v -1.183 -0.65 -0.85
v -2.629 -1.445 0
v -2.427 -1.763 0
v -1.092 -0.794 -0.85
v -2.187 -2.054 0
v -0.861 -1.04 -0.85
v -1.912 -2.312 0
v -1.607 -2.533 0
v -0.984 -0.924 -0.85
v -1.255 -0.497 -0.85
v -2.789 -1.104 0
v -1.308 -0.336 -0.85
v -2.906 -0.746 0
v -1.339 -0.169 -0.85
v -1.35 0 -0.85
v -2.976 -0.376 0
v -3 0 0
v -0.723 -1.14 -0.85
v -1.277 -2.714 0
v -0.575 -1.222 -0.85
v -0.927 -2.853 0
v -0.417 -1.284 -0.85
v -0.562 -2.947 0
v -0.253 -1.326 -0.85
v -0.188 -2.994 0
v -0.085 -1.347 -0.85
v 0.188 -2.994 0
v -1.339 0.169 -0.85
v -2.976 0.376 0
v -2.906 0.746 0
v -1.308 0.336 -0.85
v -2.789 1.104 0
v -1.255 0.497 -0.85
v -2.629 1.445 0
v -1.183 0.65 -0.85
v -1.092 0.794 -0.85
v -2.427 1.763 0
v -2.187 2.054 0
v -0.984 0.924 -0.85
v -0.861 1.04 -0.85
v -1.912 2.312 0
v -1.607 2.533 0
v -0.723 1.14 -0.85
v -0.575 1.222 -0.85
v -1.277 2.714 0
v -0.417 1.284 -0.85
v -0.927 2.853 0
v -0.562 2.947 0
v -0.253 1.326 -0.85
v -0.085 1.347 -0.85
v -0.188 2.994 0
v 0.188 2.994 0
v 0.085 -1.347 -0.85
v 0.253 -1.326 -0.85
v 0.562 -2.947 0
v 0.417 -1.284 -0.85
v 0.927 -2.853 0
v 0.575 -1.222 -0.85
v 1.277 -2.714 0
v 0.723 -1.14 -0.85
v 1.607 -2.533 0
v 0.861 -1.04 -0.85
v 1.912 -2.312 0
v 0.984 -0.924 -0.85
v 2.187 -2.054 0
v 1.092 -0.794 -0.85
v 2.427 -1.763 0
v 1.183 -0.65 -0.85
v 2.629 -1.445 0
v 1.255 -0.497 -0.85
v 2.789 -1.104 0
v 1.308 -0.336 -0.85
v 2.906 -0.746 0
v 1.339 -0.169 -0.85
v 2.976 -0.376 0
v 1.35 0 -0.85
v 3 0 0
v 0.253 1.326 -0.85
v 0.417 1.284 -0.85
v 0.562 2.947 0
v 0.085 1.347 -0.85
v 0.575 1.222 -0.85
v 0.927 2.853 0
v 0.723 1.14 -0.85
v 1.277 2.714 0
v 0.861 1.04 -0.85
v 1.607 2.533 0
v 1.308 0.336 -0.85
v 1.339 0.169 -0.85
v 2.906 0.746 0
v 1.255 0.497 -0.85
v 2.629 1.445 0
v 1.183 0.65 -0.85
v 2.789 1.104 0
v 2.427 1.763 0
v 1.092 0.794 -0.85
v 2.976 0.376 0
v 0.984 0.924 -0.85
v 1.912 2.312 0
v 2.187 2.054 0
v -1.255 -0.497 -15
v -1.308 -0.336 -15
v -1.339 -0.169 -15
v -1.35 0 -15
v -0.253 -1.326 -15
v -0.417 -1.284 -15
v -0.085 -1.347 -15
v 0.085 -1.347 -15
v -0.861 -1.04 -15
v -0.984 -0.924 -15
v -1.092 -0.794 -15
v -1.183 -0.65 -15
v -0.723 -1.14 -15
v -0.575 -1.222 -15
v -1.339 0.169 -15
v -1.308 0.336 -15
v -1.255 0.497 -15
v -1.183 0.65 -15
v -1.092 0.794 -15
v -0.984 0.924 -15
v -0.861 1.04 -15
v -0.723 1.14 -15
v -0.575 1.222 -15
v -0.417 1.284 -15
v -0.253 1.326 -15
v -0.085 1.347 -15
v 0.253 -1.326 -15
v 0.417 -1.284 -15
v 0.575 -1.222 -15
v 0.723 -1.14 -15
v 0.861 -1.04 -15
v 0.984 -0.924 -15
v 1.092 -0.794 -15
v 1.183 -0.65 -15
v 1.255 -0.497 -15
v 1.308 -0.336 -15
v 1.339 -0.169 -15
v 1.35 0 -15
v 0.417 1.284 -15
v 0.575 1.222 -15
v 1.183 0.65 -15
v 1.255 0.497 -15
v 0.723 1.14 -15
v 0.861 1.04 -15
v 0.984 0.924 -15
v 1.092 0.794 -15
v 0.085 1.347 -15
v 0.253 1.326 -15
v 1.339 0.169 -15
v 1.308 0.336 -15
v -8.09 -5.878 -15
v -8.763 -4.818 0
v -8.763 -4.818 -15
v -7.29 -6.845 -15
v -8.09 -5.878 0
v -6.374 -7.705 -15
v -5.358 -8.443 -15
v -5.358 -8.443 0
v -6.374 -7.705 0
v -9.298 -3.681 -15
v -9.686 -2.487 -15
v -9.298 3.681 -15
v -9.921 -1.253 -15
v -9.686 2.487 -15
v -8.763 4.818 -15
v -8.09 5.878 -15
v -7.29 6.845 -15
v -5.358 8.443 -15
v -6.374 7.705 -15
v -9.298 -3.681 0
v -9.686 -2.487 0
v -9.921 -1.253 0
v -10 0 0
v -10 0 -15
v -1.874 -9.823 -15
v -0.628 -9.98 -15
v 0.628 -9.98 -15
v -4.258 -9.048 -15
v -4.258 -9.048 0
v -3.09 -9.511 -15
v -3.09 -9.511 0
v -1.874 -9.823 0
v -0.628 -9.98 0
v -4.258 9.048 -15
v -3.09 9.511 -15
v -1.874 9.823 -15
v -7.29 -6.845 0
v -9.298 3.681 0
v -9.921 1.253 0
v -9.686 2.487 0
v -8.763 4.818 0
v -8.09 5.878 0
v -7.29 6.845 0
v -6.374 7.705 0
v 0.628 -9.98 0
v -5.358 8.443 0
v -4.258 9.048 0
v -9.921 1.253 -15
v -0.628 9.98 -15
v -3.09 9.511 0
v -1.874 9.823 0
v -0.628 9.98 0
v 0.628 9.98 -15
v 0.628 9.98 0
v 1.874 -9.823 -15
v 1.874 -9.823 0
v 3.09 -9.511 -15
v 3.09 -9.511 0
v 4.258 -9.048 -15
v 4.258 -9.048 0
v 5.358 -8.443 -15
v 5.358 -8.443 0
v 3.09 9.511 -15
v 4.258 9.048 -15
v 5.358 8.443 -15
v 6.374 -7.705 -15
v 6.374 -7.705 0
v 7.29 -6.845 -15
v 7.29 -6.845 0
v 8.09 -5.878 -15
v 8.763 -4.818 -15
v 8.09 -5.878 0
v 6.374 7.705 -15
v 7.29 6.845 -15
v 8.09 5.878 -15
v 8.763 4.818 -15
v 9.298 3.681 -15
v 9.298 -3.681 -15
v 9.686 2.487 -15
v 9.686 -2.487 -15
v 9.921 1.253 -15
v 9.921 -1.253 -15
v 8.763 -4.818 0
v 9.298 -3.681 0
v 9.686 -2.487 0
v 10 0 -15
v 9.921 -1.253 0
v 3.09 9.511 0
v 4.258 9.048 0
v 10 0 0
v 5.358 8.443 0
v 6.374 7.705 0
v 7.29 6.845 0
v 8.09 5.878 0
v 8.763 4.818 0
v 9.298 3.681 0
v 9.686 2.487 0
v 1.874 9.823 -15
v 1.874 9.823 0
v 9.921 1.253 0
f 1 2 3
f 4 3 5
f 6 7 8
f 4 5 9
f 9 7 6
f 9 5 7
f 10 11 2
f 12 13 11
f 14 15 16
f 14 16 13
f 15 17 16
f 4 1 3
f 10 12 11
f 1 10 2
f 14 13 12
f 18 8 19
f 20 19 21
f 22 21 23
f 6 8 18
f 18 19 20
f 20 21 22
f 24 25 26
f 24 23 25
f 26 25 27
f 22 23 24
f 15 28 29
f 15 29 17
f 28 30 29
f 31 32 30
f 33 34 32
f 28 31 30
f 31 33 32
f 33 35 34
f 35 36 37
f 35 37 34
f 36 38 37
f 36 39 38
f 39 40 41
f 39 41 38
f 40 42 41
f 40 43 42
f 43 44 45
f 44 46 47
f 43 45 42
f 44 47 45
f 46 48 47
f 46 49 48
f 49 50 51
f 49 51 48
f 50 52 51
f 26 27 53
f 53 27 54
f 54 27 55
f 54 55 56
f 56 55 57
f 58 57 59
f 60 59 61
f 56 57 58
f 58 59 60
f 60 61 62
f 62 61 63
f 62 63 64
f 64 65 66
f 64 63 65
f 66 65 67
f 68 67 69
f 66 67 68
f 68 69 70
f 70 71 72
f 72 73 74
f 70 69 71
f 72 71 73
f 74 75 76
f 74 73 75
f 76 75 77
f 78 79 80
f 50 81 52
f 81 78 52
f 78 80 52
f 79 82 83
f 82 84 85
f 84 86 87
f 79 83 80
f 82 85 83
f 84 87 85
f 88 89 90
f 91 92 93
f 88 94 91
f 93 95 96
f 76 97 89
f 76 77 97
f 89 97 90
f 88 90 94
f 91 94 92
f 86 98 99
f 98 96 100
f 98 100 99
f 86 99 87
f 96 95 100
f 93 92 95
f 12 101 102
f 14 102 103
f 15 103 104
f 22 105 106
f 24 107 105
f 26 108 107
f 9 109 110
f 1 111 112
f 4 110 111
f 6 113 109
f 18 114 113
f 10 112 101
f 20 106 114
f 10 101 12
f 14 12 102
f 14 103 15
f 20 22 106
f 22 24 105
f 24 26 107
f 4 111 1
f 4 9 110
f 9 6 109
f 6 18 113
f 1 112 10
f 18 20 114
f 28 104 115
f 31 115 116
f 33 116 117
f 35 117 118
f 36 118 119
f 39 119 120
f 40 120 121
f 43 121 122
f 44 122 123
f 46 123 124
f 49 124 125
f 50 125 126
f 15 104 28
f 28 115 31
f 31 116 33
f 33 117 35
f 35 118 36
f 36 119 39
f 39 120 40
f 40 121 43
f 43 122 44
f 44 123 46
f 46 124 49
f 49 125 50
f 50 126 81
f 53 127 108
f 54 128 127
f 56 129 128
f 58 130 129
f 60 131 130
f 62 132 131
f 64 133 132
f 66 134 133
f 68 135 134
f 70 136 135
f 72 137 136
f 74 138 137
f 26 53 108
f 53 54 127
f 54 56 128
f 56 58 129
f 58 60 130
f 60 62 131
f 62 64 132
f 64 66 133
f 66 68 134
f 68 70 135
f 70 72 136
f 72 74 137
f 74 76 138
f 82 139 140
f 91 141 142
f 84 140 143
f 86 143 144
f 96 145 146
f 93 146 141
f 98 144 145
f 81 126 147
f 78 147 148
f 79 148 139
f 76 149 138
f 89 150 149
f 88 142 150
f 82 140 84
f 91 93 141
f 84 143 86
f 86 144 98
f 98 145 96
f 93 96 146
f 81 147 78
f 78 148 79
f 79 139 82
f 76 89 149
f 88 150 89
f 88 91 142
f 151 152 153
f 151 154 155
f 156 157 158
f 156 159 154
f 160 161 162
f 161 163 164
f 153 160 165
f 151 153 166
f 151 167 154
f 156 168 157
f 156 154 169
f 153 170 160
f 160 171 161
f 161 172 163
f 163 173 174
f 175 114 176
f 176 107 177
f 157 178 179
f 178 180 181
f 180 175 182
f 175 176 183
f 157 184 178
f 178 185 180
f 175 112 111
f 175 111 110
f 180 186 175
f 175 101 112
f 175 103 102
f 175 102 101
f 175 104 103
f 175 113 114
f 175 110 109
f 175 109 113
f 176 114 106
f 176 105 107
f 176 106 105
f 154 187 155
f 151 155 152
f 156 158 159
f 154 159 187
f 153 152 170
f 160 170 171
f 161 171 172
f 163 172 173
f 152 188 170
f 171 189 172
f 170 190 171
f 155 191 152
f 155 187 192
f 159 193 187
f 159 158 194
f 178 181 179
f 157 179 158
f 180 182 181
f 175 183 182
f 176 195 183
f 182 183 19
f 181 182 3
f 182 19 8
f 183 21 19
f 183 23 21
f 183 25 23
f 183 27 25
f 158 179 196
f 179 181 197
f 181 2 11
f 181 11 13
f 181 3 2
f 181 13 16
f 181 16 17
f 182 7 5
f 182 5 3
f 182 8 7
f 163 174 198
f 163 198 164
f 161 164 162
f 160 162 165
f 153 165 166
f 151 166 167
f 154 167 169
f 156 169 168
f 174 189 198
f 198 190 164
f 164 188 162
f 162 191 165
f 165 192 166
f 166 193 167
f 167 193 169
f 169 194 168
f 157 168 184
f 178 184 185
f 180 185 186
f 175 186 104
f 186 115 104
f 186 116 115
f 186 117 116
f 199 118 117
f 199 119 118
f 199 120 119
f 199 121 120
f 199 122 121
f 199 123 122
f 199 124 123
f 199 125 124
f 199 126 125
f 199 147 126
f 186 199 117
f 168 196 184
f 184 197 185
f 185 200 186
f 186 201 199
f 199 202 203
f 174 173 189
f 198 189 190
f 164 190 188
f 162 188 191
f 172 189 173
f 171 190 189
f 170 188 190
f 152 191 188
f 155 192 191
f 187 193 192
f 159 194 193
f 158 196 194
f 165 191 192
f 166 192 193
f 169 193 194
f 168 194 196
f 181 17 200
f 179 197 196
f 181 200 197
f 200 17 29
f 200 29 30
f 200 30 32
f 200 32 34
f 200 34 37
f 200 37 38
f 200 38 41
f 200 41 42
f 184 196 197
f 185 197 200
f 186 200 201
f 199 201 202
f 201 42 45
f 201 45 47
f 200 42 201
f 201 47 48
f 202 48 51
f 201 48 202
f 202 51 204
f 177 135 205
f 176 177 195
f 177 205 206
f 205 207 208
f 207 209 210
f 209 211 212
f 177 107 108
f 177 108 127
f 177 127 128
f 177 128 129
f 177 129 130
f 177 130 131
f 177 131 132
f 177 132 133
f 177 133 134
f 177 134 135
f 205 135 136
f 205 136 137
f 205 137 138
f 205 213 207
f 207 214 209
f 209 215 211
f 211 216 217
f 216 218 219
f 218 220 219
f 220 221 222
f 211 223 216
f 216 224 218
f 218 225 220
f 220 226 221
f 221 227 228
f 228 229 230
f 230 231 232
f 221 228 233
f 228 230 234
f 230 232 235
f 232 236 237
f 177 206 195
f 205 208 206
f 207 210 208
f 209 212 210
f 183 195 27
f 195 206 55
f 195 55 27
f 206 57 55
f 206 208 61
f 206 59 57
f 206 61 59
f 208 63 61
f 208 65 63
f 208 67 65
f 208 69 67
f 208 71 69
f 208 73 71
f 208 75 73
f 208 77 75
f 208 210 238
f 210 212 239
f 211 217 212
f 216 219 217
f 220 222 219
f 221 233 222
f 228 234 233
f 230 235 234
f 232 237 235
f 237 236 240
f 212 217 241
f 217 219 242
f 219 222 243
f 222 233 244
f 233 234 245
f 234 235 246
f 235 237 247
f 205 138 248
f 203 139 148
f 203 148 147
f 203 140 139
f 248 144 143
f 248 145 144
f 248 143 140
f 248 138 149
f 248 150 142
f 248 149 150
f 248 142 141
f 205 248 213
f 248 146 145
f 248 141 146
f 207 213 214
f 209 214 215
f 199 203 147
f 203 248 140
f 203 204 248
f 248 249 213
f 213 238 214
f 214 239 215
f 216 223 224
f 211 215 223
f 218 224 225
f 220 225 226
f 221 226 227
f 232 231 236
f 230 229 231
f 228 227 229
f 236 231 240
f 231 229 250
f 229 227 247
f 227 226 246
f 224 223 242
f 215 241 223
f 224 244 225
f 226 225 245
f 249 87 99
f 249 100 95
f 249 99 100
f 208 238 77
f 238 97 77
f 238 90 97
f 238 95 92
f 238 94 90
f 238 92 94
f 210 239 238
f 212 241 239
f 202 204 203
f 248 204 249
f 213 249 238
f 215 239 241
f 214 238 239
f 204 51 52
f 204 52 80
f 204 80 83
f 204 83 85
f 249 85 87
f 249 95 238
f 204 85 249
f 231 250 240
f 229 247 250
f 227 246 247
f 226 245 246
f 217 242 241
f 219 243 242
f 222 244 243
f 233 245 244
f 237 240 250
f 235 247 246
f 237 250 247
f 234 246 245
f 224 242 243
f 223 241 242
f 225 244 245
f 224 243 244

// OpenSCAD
$fn = 50;


difference() {
	union() {
		translate(v = [0, 0, -15.0000000000]) {
			cylinder(h = 15, r = 10.0000000000);
		}
	}
	union() {
		translate(v = [0, 0, 0]) {
			rotate(a = [0, 0, 0]) {
				difference() {
					union() {
						translate(v = [0, 0, -18.0000000000]) {
							cylinder(h = 18, r = 1.0000000000);
						}
						translate(v = [0, 0, -0.8500000000]) {
							cylinder(h = 0.8500000000, r1 = 1.3500000000, r2 = 3.0000000000);
						}
						translate(v = [0, 0, -18.0000000000]) {
							cylinder(h = 18, r = 1.3500000000);
						}
						translate(v = [0, 0, -18.0000000000]) {
							cylinder(h = 18, r = 1.0000000000);
						}
					}
					union();
				}
			}
		}
	}
}
